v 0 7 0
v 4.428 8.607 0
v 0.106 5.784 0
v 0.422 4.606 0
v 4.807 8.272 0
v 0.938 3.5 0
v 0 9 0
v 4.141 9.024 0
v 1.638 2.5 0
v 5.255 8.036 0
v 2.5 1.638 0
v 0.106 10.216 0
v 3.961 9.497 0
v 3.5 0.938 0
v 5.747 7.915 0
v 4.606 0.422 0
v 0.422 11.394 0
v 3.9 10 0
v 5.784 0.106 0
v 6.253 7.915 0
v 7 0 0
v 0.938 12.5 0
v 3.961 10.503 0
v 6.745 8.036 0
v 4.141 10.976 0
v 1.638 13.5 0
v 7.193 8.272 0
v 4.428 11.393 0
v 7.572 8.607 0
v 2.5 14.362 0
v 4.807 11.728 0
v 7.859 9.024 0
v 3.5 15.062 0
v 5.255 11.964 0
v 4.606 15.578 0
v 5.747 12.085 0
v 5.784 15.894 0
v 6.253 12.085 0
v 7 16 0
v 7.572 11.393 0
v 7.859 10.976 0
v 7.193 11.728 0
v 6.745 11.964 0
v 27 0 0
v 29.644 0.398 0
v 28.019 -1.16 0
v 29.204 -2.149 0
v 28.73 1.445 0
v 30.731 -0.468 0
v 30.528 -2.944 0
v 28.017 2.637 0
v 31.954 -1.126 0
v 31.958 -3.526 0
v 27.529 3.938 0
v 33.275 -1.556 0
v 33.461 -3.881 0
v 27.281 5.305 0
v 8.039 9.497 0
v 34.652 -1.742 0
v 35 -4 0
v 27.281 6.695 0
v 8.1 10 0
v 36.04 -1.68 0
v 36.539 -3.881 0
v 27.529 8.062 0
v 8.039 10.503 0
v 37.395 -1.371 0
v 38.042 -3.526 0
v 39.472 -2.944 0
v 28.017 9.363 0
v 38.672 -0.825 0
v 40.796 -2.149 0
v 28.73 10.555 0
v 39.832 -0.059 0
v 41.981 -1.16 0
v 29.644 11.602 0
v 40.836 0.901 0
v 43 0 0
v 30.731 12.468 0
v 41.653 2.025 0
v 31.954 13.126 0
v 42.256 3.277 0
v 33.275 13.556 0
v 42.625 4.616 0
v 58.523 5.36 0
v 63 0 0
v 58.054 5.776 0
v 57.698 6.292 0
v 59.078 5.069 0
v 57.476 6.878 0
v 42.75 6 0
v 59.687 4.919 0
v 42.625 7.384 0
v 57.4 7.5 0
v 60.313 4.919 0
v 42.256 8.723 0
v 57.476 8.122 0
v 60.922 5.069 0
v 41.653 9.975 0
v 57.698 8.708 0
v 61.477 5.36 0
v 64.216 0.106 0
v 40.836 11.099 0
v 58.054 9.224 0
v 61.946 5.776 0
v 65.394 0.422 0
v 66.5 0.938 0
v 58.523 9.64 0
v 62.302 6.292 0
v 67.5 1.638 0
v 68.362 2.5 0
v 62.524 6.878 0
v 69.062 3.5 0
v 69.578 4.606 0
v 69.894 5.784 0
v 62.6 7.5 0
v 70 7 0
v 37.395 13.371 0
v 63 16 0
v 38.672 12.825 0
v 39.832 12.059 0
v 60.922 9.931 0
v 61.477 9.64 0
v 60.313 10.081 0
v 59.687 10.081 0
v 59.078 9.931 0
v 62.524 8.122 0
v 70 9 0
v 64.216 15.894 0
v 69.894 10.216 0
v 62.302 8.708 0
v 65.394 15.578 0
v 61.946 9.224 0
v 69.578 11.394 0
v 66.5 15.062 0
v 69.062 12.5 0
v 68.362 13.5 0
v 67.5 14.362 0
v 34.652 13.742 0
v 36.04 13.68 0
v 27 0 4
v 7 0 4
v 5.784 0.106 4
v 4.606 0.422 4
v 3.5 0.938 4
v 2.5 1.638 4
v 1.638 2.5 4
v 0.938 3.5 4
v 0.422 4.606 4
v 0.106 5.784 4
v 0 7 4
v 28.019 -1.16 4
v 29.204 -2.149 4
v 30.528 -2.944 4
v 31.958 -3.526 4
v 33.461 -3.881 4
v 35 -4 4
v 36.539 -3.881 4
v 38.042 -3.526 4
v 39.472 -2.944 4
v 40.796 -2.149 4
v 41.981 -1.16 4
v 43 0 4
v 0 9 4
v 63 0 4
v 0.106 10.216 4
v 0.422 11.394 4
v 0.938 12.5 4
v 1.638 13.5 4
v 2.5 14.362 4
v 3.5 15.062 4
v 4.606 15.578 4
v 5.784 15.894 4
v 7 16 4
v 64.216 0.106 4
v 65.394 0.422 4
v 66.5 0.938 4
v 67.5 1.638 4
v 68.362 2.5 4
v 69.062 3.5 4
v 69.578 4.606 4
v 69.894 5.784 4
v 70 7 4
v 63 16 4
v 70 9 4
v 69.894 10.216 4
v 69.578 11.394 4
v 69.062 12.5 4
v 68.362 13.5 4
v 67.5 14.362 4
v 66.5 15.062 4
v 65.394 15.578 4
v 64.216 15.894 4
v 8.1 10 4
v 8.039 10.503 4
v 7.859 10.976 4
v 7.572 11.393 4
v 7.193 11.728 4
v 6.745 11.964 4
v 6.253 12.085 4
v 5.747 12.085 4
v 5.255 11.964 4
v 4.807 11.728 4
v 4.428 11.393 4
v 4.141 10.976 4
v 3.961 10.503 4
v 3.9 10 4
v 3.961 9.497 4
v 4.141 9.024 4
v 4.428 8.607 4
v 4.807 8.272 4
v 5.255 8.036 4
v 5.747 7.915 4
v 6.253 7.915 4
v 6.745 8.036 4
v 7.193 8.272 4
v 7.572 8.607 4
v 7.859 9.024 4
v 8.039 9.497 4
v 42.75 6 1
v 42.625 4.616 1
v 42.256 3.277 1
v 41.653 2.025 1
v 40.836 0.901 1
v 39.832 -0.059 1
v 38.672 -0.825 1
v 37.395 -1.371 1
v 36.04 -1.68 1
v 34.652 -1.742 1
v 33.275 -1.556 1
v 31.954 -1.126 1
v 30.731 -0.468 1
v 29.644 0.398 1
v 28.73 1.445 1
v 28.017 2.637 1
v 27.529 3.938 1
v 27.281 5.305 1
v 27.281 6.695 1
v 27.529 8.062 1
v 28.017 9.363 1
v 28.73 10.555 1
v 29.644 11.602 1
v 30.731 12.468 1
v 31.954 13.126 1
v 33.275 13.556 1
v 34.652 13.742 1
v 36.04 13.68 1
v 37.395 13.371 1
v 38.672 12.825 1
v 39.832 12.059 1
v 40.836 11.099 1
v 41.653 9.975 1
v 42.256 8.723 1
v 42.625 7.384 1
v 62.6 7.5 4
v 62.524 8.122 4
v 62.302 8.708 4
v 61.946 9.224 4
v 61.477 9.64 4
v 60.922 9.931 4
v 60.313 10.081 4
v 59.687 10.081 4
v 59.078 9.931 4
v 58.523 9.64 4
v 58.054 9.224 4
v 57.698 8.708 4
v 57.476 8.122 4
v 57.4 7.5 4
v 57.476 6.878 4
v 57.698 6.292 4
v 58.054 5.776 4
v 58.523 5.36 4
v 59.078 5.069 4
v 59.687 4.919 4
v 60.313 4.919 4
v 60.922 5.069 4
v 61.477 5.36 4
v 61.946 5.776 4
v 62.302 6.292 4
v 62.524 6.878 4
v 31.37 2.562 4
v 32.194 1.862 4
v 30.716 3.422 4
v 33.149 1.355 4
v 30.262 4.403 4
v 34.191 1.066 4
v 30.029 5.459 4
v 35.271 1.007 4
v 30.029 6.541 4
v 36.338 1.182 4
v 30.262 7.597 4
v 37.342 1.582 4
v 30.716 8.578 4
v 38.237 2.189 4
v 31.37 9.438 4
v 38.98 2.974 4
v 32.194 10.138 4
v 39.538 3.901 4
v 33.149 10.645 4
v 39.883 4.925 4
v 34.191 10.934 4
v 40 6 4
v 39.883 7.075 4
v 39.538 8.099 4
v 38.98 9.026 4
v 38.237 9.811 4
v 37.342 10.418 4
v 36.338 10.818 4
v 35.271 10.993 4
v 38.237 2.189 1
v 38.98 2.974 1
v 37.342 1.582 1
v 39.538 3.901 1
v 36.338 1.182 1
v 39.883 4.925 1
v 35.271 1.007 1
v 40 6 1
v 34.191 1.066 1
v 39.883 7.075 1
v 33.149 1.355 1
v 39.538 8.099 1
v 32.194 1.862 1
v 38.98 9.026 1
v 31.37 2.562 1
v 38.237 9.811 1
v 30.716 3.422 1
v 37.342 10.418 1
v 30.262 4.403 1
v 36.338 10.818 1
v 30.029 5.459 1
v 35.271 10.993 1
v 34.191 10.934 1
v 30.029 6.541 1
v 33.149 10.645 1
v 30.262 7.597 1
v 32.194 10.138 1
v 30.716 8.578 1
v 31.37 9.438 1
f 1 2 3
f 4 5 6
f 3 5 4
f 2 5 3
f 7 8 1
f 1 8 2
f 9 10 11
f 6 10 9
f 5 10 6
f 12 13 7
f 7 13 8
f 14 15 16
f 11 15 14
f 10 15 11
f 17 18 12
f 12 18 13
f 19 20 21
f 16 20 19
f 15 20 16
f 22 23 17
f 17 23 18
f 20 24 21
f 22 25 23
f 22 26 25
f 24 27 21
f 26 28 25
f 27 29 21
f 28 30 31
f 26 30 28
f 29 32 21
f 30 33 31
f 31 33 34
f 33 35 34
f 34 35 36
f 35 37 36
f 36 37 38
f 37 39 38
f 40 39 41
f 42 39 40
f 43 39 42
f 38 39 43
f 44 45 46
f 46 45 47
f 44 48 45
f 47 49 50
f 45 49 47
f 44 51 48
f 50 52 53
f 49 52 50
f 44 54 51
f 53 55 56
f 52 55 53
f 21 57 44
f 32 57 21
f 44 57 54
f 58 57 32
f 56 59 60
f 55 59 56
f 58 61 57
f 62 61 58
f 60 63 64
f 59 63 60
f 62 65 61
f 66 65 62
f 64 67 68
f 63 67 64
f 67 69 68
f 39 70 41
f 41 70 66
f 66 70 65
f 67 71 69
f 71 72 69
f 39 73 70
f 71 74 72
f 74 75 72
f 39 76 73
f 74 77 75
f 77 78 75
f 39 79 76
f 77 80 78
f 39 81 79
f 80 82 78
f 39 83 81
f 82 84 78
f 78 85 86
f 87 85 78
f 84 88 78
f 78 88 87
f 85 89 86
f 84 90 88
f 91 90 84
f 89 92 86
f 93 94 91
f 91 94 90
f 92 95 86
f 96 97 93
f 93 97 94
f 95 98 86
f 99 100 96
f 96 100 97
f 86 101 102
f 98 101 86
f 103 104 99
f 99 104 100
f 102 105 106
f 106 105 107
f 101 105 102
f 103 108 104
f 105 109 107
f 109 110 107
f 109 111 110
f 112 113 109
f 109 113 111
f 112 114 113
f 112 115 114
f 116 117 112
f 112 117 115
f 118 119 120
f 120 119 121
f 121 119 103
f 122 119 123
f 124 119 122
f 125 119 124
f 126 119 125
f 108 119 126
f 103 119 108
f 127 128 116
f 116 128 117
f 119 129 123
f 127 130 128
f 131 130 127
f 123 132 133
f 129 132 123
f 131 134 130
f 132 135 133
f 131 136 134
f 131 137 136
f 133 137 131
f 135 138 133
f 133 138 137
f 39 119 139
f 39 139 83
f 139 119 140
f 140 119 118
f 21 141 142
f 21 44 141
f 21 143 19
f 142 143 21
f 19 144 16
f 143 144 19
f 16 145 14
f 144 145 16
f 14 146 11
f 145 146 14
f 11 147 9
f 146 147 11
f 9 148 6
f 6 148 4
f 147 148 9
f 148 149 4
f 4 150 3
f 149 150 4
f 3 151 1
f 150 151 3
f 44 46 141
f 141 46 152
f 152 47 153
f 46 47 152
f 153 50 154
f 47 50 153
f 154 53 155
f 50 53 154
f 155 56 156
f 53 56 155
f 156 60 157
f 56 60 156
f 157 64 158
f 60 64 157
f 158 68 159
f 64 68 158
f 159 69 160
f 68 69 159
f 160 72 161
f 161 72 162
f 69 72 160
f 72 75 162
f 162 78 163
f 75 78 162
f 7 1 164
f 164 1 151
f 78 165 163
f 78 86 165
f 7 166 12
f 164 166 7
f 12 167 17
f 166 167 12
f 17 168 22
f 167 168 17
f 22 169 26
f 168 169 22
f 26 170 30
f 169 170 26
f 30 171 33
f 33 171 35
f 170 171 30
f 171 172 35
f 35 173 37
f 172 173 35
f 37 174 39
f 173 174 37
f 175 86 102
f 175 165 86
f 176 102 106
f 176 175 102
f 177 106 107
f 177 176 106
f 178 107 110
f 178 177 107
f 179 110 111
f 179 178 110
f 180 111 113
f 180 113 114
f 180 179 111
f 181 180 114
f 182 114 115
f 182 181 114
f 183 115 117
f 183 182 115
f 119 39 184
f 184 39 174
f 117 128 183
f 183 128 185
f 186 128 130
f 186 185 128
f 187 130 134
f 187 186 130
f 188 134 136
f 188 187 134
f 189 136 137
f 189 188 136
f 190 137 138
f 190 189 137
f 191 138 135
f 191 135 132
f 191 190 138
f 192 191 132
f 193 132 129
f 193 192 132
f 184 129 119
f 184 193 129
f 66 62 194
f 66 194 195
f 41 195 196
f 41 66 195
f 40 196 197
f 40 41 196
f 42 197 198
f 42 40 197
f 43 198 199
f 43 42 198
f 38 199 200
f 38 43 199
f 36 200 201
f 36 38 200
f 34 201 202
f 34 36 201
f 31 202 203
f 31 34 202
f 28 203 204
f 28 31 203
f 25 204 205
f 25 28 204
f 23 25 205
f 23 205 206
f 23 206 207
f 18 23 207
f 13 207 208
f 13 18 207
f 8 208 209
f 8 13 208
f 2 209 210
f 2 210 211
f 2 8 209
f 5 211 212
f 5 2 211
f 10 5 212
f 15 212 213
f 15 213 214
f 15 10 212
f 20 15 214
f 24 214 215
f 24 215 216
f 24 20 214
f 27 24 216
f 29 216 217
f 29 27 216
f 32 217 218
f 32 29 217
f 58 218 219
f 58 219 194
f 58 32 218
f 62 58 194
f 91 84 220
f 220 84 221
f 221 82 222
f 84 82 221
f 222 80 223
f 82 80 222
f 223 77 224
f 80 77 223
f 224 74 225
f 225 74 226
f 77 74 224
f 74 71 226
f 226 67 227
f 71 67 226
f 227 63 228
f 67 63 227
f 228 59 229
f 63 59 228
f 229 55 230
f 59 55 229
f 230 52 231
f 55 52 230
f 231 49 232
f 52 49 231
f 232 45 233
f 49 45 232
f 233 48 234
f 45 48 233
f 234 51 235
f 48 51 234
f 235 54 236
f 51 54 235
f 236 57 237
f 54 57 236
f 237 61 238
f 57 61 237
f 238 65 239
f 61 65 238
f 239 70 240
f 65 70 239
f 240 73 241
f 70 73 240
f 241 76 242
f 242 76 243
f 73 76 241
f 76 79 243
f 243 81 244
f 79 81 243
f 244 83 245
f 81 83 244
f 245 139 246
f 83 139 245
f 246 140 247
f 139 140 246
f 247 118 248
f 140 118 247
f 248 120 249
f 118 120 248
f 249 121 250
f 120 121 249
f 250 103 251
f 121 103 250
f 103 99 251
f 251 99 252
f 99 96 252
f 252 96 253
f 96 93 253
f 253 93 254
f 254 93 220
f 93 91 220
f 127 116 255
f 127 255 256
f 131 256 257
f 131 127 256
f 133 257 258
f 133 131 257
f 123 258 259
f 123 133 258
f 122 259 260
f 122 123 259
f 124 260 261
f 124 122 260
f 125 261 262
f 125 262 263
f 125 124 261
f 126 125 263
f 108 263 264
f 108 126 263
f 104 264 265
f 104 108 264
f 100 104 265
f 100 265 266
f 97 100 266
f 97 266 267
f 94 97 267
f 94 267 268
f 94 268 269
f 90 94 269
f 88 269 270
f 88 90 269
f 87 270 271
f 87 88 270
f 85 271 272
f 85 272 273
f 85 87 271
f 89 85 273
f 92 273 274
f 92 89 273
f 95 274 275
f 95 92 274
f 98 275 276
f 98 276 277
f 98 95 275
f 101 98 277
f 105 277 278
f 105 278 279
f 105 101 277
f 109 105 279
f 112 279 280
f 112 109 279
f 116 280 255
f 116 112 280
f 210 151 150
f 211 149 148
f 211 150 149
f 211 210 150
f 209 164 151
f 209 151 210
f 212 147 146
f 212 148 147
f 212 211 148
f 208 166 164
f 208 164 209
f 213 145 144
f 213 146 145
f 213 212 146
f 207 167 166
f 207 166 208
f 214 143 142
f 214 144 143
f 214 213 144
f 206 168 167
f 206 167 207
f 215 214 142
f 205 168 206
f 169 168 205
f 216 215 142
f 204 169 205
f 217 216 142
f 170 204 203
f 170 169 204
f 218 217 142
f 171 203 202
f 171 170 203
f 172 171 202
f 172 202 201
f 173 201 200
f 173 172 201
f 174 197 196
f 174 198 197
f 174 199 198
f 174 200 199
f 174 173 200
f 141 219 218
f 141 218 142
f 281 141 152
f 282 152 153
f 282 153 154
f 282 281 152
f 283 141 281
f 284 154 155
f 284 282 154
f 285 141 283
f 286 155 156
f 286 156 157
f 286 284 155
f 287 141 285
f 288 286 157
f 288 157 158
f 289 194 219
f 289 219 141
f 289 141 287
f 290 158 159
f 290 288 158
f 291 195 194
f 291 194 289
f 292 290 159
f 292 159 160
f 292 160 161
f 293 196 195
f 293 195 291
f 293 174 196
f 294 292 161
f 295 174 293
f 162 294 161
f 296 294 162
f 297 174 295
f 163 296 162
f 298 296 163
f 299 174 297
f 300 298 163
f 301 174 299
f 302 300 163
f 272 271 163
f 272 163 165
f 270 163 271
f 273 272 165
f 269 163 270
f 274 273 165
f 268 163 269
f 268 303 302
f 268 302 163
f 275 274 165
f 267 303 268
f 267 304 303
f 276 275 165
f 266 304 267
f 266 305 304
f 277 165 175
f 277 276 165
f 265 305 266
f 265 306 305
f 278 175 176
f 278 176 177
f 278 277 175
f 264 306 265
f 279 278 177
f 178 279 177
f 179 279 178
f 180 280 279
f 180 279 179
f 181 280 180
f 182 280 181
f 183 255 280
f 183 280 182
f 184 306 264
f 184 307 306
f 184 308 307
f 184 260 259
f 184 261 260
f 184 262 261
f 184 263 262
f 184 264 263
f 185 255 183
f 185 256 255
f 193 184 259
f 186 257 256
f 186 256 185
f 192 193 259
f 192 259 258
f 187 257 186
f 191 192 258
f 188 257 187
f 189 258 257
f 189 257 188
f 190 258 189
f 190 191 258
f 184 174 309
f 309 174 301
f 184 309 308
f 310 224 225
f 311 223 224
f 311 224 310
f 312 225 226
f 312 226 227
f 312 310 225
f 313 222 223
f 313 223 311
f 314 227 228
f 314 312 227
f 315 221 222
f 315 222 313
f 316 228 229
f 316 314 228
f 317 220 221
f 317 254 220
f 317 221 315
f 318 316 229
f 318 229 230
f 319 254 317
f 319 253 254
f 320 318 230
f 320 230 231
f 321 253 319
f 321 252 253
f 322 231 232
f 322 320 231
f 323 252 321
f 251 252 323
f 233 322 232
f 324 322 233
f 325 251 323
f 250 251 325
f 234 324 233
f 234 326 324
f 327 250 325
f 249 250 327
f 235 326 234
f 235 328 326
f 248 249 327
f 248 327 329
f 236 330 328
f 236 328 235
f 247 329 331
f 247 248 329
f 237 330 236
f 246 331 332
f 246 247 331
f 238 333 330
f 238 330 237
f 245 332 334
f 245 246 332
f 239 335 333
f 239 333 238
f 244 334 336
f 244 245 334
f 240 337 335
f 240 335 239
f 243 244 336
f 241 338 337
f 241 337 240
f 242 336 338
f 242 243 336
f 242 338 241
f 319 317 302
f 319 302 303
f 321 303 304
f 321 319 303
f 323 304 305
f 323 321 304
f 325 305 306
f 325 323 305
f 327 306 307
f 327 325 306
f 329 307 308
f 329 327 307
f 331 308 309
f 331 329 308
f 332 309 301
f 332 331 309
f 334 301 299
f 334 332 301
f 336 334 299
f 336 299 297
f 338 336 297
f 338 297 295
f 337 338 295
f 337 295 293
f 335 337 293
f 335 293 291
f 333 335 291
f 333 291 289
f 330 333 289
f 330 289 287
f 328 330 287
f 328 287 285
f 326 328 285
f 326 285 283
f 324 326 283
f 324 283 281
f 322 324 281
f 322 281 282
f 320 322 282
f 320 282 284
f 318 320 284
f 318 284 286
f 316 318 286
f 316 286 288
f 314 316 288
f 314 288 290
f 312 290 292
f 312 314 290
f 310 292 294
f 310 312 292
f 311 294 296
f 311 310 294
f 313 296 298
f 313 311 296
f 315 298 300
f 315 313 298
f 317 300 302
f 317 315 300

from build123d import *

# Parameters (mm, degrees)
SKETCH_R     = 2.1
SKETCH_R_2   = 5
SKETCH_R_3   = 2.6
PAD_DEPTH    = 4
FILLET_R     = 7
FILLET001_R  = 7
SKETCH001_R  = 7.75
POCKET_DEPTH = 1


with BuildPart() as part:
    # Sketch → Pad (new body)
    with BuildSketch(Plane.XY):
        with BuildLine():
            Line((0, 0), (27, 0))
            ThreePointArc((27, 0), (35, -4), (43, 0))
            Line((43, 0), (70, 0))
            Line((70, 0), (70, 16))
            Line((70, 16), (0, 16))
            Line((0, 16), (0, 0))
        make_face()
        with Locations((6, 10)):
            Circle(SKETCH_R, mode=Mode.SUBTRACT)
        with Locations((35, 6)):
            Circle(SKETCH_R_2, mode=Mode.SUBTRACT)
        with Locations((60, 7.5)):
            Circle(SKETCH_R_3, mode=Mode.SUBTRACT)
    extrude(amount=PAD_DEPTH)

    # Fillet
    fillet_edges = [part.edges().sort_by_distance(p)[0] for p in [
        (70, 0, 2),
        (70, 16, 2),
    ]]
    fillet(fillet_edges, radius=FILLET_R)

    # Fillet001
    fillet001_edges = [part.edges().sort_by_distance(p)[0] for p in [
        (0, 0, 2),
        (0, 16, 2),
    ]]
    fillet(fillet001_edges, radius=FILLET001_R)

    # Sketch001 (on Face1 of Fillet001) → Pocket (cut)
    with BuildSketch(Plane(origin=(0, 0, 0), x_dir=(1, 0, 0), z_dir=(0, 0, -1))):
        with Locations((35, -6)):
            Circle(SKETCH001_R)
    extrude(amount=-POCKET_DEPTH, mode=Mode.SUBTRACT)


solid = part.part
